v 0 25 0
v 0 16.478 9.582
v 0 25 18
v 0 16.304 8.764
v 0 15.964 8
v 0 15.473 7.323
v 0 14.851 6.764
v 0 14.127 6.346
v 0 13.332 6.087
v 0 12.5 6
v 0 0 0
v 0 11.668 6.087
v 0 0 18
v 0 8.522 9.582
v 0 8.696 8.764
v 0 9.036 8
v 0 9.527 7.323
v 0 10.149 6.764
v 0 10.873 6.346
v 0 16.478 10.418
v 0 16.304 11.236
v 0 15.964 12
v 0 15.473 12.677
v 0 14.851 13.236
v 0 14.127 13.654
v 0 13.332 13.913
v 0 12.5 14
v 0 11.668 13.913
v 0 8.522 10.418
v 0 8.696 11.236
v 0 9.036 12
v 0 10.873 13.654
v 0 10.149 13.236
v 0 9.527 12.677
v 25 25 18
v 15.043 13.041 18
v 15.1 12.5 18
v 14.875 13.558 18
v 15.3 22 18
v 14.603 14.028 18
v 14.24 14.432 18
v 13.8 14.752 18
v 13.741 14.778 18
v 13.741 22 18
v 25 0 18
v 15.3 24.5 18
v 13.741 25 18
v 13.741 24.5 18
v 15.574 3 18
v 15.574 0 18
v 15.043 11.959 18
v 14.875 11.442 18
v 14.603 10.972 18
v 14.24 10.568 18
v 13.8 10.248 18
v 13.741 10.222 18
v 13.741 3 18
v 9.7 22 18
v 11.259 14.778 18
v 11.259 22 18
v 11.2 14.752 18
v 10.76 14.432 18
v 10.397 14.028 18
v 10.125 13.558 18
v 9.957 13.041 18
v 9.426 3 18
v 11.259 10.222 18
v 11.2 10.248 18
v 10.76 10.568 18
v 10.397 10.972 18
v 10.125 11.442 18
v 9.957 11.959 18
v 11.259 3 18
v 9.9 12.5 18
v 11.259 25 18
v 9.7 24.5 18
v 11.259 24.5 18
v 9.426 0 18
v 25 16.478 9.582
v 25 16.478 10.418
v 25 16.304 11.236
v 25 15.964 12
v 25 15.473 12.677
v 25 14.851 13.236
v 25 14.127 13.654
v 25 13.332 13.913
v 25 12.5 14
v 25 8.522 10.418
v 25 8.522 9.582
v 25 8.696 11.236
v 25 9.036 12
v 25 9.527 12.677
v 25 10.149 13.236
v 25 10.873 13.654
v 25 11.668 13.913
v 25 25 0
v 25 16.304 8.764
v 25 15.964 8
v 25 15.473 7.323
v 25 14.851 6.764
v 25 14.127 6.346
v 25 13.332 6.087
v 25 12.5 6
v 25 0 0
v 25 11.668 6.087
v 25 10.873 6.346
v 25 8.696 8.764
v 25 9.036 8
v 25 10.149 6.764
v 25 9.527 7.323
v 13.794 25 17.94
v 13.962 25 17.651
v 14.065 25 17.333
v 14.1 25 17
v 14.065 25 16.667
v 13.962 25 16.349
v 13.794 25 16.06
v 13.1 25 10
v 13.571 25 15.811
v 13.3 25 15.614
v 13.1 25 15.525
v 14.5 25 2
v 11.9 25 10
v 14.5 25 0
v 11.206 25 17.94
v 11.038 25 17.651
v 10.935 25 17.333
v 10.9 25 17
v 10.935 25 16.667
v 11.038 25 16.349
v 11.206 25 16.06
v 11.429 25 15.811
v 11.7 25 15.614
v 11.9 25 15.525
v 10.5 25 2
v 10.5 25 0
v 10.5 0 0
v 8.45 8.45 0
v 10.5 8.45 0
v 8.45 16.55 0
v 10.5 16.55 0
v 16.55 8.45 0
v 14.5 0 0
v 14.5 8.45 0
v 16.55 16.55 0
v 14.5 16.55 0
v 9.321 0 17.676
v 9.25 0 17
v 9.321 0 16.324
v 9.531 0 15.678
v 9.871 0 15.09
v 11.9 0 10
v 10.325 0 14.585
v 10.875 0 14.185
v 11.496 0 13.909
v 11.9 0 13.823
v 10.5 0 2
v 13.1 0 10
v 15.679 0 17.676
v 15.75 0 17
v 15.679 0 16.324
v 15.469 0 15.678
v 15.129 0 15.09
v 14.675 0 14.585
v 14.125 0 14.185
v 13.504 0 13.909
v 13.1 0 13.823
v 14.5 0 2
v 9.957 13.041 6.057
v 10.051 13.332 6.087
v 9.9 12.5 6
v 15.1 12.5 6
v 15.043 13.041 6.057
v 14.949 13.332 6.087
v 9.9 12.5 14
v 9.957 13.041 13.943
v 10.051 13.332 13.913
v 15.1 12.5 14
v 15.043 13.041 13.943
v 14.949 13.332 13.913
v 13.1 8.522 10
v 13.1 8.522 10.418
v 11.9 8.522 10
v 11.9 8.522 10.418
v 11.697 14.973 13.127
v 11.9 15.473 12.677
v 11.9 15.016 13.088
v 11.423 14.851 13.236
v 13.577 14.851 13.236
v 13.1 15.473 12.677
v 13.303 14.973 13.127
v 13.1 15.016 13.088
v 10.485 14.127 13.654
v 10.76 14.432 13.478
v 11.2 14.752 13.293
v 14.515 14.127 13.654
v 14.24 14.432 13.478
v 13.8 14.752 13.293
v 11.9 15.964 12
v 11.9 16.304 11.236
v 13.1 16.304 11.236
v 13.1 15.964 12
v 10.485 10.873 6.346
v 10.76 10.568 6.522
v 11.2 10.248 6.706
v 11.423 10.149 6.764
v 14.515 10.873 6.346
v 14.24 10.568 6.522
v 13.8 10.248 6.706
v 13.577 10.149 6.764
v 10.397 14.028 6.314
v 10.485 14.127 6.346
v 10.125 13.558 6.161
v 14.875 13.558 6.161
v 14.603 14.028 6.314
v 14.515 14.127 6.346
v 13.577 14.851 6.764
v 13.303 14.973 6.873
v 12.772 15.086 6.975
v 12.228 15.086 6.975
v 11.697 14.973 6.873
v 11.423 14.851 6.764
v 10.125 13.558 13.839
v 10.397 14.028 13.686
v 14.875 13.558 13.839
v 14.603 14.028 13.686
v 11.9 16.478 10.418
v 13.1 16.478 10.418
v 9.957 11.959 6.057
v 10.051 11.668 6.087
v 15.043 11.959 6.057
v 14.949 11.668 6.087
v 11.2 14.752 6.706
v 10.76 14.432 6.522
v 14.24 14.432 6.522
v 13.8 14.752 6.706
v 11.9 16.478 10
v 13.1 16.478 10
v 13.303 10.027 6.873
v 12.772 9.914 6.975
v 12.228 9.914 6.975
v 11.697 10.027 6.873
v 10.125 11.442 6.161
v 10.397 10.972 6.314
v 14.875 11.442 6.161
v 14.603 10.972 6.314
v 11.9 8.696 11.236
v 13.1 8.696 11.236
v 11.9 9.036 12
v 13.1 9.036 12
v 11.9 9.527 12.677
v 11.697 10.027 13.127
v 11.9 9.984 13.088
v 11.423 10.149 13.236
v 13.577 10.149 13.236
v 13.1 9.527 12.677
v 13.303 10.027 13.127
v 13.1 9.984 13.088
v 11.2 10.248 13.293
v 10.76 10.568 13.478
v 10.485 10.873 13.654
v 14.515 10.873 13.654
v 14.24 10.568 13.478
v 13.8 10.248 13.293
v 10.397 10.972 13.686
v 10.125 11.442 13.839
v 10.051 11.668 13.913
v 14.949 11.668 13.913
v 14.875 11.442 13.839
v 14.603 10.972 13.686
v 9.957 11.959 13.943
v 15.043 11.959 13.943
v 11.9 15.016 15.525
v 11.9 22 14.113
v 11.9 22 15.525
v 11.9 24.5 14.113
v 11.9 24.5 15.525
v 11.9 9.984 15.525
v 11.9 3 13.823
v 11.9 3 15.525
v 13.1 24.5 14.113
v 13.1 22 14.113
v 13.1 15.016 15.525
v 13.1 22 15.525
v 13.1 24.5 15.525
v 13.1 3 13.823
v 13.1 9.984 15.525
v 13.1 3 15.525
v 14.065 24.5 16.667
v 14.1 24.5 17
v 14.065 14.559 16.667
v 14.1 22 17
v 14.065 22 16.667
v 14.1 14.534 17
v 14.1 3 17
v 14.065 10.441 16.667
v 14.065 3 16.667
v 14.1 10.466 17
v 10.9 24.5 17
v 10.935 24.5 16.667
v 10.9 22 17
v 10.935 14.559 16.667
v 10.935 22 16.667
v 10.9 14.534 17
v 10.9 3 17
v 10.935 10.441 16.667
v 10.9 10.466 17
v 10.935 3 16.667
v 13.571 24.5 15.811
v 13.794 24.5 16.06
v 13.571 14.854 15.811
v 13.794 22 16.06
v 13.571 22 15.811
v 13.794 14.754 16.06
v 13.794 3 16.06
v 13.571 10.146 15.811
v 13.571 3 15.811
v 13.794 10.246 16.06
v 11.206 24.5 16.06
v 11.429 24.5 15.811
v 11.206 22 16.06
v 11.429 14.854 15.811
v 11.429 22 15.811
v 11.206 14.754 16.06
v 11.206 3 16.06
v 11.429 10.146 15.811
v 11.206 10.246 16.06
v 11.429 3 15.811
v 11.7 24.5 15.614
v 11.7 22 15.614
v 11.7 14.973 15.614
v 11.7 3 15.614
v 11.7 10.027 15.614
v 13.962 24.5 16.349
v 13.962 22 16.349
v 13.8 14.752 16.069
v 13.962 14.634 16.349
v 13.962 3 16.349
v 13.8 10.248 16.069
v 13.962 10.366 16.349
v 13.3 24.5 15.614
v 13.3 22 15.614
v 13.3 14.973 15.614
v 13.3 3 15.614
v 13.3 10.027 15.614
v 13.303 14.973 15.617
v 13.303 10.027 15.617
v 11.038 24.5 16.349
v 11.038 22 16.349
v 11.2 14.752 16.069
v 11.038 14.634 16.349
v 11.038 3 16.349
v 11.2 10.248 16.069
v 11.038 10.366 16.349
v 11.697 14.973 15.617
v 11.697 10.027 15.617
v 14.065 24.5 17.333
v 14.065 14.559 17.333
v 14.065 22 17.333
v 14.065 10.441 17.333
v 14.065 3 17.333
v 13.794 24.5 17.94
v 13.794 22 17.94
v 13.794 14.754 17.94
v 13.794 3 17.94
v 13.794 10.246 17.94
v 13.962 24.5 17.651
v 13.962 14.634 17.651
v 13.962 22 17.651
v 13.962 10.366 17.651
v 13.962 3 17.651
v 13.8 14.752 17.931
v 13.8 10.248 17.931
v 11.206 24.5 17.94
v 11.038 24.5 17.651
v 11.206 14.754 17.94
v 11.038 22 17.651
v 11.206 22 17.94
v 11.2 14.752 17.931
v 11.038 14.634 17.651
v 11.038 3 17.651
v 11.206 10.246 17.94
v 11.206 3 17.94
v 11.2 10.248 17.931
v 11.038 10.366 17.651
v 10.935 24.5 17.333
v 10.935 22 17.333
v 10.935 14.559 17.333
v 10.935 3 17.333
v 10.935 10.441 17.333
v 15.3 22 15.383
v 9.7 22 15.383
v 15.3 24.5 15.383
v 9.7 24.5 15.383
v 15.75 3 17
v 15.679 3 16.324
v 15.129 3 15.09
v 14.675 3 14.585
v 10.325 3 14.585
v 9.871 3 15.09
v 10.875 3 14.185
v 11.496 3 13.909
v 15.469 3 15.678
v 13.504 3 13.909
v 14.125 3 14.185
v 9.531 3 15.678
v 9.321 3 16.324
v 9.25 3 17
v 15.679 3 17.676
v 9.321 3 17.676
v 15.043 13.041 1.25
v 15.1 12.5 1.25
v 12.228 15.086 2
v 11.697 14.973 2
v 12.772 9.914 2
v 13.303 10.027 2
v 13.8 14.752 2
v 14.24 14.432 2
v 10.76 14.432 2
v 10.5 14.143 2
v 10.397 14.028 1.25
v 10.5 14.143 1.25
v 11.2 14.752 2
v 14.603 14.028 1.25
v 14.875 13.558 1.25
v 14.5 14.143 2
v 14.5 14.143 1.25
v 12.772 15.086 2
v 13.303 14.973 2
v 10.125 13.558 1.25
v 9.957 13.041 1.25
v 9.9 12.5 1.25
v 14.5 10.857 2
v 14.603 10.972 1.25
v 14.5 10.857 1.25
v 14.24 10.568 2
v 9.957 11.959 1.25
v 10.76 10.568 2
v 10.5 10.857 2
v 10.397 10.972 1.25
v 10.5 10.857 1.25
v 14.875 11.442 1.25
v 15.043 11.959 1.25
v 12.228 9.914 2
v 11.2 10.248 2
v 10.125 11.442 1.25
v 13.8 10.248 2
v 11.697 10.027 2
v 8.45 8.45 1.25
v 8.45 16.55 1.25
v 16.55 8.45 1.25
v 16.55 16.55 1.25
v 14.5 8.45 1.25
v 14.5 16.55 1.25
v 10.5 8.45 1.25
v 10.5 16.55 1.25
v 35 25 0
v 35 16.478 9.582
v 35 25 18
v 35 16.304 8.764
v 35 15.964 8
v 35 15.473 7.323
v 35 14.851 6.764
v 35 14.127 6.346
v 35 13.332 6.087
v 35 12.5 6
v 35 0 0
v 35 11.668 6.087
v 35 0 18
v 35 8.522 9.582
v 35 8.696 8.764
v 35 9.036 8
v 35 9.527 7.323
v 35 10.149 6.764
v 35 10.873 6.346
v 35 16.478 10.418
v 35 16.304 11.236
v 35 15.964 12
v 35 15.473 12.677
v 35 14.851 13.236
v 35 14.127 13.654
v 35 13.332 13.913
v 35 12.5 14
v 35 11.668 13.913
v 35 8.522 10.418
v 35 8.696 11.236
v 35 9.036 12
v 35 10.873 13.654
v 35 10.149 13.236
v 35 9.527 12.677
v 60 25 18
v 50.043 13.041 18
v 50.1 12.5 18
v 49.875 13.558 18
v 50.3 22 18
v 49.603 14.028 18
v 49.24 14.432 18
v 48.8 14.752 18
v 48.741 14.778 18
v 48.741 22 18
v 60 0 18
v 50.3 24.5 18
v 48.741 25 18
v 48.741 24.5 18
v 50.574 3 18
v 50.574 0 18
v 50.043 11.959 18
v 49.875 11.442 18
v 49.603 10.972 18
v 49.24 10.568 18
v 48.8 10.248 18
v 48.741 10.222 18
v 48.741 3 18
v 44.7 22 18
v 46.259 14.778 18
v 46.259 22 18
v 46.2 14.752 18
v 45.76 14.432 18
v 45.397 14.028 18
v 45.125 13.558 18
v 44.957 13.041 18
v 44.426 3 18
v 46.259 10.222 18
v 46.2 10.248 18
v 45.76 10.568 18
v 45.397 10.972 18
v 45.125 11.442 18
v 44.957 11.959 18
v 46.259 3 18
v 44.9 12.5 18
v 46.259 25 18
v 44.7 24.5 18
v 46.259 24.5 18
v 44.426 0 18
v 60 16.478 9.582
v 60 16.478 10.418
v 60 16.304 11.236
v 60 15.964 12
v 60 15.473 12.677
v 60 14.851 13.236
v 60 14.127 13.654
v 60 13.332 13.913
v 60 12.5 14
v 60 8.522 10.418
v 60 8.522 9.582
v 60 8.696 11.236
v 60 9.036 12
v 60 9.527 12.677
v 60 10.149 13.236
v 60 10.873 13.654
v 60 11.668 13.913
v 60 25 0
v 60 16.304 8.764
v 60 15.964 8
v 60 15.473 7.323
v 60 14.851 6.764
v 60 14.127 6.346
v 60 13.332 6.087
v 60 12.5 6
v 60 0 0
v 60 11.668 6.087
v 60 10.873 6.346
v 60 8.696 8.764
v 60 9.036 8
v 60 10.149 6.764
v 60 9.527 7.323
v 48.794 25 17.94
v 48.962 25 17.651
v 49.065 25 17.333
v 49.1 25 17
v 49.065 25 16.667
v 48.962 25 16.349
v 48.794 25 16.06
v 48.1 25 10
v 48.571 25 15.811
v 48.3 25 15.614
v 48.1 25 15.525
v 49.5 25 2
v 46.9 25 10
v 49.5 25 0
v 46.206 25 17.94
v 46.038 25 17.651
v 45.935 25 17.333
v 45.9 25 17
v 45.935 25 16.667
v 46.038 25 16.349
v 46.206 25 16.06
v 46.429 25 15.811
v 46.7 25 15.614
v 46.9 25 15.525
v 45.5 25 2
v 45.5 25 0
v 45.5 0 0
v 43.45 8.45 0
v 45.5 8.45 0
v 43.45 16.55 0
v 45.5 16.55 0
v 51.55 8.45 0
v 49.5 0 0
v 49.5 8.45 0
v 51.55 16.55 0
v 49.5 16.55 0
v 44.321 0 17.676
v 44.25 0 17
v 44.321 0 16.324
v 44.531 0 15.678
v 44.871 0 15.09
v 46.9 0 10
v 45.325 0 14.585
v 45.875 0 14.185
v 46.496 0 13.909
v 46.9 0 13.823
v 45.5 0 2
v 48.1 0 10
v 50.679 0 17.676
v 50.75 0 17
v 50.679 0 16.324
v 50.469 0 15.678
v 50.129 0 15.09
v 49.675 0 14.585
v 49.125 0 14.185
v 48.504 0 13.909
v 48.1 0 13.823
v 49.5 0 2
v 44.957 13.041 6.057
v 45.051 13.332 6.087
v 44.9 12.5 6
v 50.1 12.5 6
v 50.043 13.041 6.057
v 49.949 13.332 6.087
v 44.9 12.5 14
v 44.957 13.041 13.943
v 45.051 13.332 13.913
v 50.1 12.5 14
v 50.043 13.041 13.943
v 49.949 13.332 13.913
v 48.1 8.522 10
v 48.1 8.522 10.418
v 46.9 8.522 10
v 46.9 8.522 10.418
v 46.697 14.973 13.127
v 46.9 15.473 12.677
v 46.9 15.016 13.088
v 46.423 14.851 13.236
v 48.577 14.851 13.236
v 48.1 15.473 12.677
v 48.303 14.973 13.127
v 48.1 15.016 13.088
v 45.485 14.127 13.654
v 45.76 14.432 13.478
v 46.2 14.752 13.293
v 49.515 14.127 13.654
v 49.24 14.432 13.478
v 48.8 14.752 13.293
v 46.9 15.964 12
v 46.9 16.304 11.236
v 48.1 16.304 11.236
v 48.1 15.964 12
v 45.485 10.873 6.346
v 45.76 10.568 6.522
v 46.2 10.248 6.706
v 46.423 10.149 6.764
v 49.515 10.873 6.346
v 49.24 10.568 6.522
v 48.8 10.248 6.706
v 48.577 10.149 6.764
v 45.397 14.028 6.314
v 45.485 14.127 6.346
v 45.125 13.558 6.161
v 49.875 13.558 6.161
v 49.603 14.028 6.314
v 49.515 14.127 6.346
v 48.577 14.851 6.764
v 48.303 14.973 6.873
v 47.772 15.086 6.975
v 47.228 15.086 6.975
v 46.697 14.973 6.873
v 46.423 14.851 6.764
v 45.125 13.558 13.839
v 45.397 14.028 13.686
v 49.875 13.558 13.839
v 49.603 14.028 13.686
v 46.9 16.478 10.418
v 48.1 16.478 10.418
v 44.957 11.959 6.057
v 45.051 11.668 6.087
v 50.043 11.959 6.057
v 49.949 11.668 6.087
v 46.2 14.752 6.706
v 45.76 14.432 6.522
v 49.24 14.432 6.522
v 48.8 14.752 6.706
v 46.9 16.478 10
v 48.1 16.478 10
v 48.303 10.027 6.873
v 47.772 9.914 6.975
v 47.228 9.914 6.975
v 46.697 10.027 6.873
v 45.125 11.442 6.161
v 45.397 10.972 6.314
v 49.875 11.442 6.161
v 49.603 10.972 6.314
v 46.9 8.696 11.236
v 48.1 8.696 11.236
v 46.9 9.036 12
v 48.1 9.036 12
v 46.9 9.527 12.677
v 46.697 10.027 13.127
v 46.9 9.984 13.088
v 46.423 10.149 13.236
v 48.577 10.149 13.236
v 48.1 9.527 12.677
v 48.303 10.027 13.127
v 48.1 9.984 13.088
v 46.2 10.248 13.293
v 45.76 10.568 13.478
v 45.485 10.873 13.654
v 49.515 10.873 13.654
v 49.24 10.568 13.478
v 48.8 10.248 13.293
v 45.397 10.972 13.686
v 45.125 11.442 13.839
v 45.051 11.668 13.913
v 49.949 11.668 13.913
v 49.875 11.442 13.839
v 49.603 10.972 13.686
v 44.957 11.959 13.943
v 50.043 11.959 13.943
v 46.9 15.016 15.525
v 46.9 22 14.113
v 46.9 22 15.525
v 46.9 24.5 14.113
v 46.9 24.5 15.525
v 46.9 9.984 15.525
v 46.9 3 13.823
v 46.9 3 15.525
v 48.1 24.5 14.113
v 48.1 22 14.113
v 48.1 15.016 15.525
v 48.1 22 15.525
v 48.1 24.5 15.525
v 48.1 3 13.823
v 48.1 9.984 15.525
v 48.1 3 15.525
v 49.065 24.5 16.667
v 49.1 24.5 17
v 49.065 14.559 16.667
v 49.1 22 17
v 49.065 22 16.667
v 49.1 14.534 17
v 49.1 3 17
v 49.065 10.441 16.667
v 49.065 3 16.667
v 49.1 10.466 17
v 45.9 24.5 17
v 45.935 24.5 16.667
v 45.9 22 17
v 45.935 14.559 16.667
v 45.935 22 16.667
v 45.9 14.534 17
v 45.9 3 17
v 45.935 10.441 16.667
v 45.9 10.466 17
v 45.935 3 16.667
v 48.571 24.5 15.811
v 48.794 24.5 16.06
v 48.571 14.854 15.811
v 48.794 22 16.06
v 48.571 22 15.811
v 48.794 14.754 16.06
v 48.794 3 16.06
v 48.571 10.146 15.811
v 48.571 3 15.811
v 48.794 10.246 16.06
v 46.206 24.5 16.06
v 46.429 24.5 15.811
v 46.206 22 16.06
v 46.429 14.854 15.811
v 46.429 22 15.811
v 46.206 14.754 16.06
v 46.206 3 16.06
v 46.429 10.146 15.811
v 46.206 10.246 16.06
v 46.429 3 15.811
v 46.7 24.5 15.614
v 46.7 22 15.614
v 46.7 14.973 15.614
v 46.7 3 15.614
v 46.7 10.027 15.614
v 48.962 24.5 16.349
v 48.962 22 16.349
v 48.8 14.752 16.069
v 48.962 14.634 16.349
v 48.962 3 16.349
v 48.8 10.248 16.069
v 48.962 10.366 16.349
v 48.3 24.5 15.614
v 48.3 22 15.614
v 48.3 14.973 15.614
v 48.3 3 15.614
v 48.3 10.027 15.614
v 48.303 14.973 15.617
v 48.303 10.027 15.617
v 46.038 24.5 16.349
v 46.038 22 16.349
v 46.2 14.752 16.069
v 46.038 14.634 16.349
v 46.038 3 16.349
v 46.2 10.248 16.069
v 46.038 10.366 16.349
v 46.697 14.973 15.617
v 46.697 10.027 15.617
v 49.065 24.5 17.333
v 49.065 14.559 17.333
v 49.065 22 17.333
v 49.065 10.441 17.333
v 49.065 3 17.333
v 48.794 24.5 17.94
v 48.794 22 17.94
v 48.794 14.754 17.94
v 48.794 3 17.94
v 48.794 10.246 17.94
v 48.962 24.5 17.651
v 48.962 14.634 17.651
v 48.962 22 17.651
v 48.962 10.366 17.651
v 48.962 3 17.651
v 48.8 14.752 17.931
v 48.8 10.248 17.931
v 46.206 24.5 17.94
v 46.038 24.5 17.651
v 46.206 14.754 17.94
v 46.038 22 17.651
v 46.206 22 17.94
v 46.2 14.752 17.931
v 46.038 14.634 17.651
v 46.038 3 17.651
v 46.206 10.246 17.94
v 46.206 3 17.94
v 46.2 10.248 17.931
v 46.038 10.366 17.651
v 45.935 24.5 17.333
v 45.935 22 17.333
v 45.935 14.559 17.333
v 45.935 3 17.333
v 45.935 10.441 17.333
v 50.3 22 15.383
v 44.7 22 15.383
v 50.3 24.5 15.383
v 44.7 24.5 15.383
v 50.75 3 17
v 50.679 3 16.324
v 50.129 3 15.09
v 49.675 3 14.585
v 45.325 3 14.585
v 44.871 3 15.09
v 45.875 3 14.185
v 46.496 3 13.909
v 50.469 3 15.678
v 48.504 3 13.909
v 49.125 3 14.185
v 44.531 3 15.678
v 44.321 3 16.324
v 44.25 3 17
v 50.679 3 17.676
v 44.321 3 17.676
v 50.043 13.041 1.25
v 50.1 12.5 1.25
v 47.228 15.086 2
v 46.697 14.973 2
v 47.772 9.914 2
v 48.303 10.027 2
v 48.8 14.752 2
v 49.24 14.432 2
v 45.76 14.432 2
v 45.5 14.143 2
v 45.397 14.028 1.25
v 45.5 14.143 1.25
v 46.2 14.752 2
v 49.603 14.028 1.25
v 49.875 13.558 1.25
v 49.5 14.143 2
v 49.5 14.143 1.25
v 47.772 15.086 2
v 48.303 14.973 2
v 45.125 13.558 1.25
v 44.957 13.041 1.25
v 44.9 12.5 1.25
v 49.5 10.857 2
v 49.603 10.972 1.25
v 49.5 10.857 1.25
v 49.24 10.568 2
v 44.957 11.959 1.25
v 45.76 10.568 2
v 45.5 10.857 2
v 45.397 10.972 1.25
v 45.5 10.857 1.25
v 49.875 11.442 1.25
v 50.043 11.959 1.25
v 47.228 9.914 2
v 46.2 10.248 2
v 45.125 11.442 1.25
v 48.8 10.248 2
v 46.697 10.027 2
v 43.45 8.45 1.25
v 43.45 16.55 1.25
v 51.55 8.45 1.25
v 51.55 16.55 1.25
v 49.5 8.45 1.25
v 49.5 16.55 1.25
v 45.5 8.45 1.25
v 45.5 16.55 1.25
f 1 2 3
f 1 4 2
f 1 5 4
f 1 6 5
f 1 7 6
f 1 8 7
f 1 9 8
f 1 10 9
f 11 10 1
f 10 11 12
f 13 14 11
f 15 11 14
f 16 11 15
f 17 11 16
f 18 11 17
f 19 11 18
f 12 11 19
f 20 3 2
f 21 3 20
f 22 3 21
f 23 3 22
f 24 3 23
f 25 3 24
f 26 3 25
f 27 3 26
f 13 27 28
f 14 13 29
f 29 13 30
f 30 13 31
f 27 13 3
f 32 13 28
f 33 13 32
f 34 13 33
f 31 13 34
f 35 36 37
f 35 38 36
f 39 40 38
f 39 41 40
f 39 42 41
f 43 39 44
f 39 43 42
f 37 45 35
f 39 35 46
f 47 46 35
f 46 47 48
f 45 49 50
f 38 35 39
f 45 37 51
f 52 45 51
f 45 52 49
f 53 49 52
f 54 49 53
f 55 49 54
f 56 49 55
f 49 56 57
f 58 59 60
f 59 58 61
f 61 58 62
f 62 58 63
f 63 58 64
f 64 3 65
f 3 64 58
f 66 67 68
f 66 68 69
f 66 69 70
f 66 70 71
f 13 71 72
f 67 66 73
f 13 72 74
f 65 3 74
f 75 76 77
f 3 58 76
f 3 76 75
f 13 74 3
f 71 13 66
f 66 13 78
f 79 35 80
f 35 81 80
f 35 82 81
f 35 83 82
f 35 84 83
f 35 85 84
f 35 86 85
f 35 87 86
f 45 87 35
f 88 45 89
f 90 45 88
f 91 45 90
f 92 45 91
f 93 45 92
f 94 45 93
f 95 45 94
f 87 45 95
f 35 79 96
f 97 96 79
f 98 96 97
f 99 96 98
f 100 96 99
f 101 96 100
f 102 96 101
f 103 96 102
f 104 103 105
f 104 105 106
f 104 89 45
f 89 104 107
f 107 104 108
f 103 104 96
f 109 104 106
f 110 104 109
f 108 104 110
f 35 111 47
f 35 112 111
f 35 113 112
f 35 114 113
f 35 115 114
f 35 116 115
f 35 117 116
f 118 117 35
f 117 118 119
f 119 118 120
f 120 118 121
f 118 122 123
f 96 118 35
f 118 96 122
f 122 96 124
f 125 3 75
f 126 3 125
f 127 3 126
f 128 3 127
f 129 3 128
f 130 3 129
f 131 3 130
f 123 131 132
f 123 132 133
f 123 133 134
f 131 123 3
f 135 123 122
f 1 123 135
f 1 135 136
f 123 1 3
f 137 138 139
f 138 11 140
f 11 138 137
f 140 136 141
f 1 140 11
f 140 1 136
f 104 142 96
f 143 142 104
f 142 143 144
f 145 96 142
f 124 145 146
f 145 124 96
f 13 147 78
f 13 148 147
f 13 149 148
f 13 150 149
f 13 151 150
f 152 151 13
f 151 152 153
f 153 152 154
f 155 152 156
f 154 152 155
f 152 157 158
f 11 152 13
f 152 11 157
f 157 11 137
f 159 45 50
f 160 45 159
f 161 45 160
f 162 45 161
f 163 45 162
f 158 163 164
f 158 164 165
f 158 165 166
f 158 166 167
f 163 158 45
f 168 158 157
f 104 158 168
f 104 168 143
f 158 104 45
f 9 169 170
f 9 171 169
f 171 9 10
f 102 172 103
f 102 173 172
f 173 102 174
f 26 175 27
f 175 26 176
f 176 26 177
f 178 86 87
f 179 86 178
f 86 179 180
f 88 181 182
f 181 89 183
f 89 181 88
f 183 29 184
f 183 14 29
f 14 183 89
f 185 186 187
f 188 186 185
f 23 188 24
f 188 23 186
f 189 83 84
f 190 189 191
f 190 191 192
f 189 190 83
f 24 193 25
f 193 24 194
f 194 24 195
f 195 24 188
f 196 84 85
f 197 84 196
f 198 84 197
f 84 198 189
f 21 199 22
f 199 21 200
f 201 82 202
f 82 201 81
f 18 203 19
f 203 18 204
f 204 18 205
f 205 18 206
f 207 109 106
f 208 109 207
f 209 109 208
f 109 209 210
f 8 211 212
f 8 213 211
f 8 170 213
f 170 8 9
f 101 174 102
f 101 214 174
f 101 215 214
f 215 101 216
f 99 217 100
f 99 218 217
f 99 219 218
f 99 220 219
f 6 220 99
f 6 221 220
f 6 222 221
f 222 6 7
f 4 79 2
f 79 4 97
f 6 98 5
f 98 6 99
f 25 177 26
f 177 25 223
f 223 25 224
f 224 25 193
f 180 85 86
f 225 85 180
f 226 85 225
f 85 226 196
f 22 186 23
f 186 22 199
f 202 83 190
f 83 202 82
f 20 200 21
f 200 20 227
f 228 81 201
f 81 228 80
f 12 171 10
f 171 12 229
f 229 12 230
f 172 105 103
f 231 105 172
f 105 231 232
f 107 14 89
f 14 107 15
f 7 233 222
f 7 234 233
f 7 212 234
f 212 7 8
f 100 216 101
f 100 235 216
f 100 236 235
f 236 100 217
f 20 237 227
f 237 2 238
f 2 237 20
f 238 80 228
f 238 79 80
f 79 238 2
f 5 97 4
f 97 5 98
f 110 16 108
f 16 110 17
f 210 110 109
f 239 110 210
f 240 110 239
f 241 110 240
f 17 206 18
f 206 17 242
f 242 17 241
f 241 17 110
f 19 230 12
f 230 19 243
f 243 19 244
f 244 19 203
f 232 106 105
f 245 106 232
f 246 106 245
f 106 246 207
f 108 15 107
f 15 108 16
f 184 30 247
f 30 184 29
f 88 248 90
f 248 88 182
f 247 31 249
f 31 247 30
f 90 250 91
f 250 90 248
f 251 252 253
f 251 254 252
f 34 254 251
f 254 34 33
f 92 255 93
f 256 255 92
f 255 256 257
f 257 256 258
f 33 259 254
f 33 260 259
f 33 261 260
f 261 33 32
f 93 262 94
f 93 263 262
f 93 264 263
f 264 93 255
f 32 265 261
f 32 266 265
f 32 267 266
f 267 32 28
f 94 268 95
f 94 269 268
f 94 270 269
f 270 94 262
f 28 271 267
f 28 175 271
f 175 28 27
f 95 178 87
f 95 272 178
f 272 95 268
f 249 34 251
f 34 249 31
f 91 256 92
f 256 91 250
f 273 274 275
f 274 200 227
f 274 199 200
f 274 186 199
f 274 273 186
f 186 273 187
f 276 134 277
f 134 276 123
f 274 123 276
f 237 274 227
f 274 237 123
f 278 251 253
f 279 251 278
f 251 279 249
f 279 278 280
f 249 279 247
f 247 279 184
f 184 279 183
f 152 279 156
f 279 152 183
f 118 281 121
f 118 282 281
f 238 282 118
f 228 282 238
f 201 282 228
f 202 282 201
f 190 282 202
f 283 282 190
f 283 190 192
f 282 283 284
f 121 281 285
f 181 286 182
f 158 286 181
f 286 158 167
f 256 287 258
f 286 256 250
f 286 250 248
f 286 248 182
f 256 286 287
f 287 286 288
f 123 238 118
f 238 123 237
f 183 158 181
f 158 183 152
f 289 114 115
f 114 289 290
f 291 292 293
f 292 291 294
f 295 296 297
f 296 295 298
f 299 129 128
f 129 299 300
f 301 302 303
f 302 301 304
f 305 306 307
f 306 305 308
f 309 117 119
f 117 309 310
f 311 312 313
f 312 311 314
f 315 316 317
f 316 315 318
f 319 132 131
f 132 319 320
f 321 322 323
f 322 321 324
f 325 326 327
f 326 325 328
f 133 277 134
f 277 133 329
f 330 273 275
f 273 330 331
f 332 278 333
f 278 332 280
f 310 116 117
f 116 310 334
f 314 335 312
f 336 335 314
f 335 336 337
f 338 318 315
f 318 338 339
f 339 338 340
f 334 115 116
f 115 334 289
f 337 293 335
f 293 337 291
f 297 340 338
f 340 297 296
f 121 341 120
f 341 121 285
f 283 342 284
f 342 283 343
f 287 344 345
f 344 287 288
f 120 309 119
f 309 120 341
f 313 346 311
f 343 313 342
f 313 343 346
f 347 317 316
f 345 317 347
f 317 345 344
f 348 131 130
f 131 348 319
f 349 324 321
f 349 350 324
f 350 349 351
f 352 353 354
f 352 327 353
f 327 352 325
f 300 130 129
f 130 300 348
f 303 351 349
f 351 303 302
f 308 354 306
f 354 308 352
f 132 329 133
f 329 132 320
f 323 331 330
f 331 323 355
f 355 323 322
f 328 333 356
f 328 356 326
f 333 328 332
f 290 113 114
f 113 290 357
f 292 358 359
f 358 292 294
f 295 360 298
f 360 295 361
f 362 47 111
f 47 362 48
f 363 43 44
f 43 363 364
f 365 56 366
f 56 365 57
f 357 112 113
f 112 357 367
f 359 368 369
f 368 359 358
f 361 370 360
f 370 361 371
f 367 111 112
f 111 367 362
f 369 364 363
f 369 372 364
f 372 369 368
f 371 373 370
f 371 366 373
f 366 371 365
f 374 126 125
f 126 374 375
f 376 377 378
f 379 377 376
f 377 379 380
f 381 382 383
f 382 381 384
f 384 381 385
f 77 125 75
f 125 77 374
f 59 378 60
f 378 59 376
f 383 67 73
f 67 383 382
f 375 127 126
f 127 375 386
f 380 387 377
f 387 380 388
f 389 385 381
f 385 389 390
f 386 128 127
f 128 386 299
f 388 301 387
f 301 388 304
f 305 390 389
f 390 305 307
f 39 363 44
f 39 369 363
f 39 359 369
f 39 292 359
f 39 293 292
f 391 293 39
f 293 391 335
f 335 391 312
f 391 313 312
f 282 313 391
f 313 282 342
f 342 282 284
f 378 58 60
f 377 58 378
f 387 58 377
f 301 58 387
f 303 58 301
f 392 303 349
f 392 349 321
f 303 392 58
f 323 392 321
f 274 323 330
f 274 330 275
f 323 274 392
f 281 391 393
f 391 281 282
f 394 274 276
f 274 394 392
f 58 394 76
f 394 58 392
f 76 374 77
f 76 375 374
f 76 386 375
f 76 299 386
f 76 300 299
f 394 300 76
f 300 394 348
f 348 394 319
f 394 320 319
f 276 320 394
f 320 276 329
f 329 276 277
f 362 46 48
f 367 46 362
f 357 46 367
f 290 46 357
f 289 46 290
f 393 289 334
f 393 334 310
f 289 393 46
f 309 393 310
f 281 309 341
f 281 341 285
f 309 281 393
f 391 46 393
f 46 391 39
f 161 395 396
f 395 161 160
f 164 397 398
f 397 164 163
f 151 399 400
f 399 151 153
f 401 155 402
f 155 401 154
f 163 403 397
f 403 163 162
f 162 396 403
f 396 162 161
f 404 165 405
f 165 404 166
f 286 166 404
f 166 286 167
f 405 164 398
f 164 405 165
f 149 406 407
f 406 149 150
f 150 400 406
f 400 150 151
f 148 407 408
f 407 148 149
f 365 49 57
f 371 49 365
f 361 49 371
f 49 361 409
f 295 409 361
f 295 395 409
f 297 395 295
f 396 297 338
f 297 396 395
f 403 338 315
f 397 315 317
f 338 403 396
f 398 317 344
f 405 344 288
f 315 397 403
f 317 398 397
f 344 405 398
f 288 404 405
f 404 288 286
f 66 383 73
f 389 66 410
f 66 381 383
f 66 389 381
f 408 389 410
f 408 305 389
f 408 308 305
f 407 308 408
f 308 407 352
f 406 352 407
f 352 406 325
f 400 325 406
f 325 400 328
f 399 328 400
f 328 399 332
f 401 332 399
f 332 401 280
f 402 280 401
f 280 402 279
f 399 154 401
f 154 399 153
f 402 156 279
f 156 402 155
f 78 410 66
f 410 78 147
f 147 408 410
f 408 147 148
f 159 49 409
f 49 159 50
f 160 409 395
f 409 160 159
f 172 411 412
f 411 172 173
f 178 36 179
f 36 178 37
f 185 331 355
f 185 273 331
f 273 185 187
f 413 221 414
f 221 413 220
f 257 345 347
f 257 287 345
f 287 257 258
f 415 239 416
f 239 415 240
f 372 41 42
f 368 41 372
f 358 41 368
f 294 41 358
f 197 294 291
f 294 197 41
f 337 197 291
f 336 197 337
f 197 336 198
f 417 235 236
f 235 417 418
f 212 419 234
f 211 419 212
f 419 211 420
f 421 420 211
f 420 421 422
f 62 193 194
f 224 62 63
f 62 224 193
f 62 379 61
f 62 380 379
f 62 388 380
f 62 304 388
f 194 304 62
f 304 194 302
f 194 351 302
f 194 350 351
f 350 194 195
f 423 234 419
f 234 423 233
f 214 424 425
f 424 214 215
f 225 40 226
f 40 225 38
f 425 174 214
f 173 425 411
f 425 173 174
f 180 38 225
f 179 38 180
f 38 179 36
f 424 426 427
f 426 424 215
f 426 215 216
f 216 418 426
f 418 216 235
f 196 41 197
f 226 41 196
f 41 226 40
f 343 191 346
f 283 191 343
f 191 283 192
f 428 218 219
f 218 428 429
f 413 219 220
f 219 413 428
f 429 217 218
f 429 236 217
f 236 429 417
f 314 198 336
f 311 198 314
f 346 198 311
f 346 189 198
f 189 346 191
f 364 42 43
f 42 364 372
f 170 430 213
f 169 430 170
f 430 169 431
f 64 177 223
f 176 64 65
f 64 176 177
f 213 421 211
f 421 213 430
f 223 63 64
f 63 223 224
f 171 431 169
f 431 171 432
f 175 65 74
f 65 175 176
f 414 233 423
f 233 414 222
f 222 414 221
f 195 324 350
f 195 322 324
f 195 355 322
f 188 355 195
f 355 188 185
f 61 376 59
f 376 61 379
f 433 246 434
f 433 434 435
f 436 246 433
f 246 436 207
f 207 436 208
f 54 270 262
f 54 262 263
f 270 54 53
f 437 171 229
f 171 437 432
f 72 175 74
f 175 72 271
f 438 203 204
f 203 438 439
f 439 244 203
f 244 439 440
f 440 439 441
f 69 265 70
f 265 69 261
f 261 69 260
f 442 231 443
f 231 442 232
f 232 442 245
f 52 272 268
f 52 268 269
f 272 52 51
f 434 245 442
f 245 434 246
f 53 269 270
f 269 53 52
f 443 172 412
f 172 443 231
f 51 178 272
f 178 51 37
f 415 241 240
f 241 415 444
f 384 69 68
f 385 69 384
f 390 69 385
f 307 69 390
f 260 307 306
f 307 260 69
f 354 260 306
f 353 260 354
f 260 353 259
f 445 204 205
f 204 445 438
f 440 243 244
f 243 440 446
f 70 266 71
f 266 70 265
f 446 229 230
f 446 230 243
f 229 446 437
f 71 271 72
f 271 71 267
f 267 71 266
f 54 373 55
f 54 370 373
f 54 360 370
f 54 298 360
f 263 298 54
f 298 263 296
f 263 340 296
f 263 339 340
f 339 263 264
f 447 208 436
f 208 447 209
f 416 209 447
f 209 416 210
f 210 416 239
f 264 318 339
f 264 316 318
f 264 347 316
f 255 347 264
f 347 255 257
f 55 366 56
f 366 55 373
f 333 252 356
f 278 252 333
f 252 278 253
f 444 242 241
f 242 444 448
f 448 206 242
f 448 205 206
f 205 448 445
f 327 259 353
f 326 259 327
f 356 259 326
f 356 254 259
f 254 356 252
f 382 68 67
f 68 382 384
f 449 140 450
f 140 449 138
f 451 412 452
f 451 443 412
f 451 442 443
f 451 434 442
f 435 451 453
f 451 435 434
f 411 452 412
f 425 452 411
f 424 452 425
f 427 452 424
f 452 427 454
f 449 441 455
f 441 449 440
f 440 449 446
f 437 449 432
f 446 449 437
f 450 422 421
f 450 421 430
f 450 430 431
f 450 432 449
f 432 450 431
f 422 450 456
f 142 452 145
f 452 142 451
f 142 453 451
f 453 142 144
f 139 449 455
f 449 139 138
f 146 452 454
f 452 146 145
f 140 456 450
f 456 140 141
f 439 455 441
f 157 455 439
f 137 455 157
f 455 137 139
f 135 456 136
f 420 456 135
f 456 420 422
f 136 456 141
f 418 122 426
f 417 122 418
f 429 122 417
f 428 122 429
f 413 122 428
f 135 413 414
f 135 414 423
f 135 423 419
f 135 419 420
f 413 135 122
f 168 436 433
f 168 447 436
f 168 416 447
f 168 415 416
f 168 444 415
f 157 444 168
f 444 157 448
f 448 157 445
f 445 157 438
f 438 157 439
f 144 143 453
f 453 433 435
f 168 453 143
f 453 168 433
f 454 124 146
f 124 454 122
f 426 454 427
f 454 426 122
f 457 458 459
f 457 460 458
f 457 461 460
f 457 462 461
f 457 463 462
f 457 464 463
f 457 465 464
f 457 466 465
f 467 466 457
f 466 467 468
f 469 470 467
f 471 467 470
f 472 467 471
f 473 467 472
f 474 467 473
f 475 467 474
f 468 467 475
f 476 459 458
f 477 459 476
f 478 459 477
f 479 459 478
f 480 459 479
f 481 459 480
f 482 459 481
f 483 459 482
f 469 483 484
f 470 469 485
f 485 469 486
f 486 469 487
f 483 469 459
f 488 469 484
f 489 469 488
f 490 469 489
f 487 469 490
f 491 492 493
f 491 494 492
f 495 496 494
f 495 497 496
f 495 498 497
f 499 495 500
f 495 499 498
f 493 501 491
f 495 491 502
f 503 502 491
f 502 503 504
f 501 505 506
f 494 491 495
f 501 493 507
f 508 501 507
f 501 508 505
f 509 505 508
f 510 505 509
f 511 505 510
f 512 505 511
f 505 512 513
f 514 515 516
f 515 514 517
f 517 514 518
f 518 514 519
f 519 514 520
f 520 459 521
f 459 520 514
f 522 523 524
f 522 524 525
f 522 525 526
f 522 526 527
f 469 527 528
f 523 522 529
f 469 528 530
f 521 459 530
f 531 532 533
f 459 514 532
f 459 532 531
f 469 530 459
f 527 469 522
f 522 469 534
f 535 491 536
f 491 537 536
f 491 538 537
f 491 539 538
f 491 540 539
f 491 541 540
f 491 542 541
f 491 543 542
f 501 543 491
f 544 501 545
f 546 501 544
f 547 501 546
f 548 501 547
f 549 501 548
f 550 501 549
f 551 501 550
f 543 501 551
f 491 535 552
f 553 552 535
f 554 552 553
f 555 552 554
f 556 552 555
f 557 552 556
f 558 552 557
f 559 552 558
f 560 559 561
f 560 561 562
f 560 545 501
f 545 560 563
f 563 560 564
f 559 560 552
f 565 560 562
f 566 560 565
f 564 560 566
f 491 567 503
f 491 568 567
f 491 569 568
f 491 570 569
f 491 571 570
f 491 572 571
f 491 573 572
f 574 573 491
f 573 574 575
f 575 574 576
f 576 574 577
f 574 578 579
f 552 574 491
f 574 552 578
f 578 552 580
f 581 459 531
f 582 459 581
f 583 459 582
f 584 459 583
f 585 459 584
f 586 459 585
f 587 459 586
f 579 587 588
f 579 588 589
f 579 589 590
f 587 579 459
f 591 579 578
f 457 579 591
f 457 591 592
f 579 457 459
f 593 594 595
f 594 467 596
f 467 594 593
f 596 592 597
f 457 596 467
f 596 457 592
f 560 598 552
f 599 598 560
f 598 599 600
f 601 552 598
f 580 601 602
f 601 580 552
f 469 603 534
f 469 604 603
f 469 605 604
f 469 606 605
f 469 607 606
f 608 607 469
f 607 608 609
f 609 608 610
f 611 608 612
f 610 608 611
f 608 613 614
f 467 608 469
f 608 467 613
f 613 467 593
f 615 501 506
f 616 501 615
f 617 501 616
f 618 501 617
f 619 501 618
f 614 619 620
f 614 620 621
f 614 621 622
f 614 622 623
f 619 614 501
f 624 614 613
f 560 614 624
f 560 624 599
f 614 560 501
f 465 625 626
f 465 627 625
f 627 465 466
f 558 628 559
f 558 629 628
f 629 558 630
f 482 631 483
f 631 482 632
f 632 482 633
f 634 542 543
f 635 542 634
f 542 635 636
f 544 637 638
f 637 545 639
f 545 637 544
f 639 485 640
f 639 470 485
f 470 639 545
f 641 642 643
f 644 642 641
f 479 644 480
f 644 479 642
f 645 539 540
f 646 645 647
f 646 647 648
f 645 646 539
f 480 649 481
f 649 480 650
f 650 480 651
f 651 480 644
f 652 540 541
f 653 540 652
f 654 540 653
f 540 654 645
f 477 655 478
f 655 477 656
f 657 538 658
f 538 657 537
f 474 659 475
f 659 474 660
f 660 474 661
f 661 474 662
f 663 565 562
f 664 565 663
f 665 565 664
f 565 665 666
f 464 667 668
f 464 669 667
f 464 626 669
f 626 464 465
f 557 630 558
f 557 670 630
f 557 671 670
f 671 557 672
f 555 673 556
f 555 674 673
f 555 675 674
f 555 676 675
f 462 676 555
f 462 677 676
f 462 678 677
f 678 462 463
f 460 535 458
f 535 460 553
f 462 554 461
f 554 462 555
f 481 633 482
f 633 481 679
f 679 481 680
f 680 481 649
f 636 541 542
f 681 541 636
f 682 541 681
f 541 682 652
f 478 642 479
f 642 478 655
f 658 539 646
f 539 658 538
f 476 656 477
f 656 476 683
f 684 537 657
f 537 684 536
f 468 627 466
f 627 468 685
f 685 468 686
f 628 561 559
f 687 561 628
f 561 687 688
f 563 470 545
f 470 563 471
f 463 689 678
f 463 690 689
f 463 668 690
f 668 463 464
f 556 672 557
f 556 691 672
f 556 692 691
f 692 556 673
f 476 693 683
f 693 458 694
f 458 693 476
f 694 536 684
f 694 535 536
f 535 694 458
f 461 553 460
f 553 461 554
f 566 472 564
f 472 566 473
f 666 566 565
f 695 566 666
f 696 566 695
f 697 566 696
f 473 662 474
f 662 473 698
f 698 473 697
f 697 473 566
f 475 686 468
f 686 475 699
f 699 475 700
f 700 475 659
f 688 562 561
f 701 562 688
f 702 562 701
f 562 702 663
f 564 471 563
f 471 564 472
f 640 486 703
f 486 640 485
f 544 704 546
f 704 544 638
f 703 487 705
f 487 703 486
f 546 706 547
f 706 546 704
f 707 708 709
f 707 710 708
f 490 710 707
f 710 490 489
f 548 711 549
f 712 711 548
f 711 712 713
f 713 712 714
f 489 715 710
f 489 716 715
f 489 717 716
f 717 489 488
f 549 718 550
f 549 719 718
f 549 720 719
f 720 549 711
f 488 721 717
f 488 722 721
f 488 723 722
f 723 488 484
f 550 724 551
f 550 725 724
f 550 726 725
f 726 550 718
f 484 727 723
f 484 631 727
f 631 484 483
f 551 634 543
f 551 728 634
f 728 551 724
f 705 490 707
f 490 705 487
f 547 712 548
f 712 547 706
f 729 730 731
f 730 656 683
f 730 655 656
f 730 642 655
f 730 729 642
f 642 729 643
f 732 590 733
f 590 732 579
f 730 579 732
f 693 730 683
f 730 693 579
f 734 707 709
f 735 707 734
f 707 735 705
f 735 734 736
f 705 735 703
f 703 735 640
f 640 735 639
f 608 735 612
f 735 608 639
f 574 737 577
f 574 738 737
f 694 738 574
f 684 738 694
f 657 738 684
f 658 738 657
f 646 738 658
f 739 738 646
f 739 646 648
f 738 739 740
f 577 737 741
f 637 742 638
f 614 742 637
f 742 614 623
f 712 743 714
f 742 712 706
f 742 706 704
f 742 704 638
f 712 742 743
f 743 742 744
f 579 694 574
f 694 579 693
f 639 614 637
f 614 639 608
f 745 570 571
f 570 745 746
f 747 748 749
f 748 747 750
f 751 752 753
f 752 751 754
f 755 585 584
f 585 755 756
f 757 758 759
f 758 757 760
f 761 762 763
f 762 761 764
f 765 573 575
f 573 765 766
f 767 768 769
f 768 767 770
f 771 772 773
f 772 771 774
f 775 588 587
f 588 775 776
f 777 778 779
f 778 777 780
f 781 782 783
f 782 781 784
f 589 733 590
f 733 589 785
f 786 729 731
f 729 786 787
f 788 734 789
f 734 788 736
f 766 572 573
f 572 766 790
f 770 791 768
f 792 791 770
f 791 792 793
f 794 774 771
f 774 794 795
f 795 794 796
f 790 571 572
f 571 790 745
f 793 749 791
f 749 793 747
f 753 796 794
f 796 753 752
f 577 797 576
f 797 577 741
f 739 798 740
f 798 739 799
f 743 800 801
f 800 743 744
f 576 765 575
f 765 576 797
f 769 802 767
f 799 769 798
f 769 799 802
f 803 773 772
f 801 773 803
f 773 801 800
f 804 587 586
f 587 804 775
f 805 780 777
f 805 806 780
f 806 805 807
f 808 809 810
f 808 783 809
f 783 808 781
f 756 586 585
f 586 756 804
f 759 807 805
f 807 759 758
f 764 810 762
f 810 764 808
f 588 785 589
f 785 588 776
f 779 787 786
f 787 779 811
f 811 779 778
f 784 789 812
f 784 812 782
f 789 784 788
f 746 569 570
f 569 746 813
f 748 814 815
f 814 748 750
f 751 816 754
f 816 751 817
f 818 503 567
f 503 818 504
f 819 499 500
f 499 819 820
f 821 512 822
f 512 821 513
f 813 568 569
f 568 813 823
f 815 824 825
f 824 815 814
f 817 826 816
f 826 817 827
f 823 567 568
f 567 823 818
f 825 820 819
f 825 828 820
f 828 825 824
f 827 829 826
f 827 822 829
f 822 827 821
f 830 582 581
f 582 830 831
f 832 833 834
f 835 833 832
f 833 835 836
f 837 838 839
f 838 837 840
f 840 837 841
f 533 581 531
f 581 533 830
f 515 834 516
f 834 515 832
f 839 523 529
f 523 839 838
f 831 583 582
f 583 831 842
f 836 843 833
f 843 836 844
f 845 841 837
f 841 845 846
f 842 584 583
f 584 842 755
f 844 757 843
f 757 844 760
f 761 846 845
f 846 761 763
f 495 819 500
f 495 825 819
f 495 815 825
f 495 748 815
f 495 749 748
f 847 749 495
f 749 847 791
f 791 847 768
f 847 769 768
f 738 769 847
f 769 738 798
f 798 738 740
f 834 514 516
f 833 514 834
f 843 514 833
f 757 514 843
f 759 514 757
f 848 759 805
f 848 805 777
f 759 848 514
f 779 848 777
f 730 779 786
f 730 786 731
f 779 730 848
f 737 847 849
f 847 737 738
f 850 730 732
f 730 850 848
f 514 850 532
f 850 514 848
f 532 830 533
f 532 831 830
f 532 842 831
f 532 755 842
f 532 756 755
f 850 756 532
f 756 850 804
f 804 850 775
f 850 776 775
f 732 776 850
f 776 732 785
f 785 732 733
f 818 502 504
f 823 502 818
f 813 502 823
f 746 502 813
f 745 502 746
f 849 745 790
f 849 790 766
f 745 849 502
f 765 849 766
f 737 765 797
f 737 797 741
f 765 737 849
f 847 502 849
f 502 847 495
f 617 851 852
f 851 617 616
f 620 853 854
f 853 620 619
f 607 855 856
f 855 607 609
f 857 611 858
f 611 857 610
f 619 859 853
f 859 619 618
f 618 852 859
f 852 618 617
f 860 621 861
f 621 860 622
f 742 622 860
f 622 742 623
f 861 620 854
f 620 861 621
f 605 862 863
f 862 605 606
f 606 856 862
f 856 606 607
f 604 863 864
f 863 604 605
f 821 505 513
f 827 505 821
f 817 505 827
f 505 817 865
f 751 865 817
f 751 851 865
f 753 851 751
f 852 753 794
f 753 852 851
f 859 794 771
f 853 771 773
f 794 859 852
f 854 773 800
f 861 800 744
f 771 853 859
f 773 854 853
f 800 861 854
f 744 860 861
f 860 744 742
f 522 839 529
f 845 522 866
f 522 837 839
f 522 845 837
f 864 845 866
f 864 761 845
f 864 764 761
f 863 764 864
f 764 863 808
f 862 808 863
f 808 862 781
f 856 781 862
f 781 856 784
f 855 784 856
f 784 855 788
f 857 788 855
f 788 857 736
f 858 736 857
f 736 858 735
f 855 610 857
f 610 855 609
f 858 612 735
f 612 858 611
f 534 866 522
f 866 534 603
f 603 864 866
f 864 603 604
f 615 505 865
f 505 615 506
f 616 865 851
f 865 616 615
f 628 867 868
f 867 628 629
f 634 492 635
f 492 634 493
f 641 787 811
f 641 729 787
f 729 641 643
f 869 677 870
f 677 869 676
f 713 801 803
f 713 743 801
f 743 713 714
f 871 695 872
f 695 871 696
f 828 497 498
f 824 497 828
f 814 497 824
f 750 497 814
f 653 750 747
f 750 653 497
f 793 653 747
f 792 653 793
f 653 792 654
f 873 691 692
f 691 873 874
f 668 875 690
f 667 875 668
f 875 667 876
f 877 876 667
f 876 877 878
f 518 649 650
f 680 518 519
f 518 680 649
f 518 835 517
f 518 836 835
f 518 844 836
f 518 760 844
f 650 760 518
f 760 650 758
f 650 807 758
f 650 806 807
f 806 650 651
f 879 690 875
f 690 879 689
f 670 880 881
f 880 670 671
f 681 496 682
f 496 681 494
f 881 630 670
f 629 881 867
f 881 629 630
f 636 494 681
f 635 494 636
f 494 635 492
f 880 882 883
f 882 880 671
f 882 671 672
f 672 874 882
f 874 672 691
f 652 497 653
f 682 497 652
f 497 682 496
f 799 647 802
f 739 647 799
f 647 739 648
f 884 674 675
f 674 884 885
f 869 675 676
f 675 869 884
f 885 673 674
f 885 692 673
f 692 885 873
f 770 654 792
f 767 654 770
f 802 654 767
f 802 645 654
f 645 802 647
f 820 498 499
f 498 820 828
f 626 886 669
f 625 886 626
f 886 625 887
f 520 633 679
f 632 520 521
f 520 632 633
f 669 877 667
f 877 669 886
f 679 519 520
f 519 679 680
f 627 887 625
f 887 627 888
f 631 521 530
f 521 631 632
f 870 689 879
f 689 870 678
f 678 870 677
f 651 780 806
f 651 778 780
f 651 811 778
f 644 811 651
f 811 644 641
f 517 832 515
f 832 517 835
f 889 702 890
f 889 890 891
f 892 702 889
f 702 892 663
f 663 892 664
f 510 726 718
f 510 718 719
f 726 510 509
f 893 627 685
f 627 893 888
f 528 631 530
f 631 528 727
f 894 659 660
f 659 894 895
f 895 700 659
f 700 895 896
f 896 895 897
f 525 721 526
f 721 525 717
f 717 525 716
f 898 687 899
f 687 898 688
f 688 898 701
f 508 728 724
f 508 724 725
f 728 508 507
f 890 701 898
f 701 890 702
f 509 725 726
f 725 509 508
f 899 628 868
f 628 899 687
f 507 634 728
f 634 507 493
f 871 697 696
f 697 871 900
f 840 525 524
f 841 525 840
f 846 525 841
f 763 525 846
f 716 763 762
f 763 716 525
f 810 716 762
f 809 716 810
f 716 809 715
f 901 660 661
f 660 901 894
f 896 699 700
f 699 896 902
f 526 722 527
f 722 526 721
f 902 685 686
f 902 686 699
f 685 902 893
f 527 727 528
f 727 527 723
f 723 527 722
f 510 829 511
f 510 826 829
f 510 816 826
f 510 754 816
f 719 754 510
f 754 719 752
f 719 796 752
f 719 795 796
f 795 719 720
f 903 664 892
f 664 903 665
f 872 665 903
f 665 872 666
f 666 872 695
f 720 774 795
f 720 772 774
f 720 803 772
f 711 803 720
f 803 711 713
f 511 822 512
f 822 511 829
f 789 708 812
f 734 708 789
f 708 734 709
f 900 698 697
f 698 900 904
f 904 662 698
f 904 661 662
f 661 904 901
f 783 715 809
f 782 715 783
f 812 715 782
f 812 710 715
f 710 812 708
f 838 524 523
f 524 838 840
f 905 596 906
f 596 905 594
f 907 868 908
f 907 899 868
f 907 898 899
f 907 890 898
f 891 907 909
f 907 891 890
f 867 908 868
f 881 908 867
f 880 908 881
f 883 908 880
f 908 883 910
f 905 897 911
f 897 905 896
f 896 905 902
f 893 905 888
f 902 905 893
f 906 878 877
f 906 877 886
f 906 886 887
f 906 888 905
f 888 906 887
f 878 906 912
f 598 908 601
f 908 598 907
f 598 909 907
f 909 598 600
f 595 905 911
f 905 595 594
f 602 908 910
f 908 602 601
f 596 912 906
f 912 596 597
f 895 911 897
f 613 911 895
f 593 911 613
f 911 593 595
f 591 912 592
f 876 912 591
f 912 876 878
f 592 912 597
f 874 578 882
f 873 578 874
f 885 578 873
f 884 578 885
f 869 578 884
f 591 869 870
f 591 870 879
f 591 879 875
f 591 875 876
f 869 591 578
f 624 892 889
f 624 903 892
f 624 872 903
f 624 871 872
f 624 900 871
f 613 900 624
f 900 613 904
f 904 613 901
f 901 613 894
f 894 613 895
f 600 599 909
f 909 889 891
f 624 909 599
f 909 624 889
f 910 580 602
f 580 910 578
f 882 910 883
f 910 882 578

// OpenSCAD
// ============================================================
// PART 6 — Smooth Rod End Holders (print 2x)
// AI-Based Smart Precision Irrigation System (1-Axis)
// ============================================================
// Dimensions: 25 x 25 x 18 mm each
// Material: PLA+, 0.20mm layer, 60% infill, 3 perimeters
// Print time: ~40 min (both)
// Print orientation: Flat face (extrusion contact) DOWN
// ============================================================

/* [Holder Parameters] */
holder_w    = 25;     // X width
holder_d    = 25;     // Y depth
holder_h    = 18;     // Z height

/* [Rod Bore] */
rod_dia     = 8.0;    // Nominal rod diameter (no interference here — clamped)
rod_z       = 10;     // Rod center height from base
slit_width  = 1.2;    // Clamping slit (slightly wider than bracket for adjustment)

/* [Pinch Bolt] */
pinch_dia   = 3.2;    // M3 clearance
pinch_nut_w = 5.6;    // M3 nut trap width (across flats)
pinch_nut_h = 2.5;    // M3 nut trap depth

/* [Extrusion Mount] */
ext_bolt_dia = 5.2;   // M5 clearance
ext_nut_w    = 8.1;   // M5 T-nut width
ext_nut_h    = 3.5;   // T-nut recess depth

/* [V-Groove Registration] */
// V-groove on bottom face seats into 2020 V-slot for self-alignment
vgroove_depth = 2;
vgroove_angle = 90;    // V-slot angle

$fn = 30;

module rod_end_holder() {
    difference() {
        union() {
            // Main body
            cube([holder_w, holder_d, holder_h]);

            // Reinforcement ears around rod (higher clamping area)
            translate([holder_w/2, holder_d/2, 0])
            cylinder(d=rod_dia + 8, h=holder_h);
        }

        // Trim to rectangular envelope
        // Left
        translate([-20, -1, -1])
        cube([20, holder_d + 2, holder_h + 2]);
        // Right
        translate([holder_w, -1, -1])
        cube([20, holder_d + 2, holder_h + 2]);
        // Front
        translate([-1, -20, -1])
        cube([holder_w + 2, 20, holder_h + 2]);
        // Back
        translate([-1, holder_d, -1])
        cube([holder_w + 2, 20, holder_h + 2]);

        // === ROD BORE (through-hole) ===
        translate([-1, holder_d/2, rod_z])
        rotate([0, 90, 0])
        cylinder(d=rod_dia, h=holder_w + 2);

        // === CLAMPING SLIT (vertical, from rod to top) ===
        translate([(holder_w - slit_width)/2, -1, rod_z])
        cube([slit_width, holder_d + 2, holder_h - rod_z + 1]);

        // === PINCH BOLT (horizontal M3, perpendicular to slit) ===
        // Bolt passes through one ear, across slit, threads into other ear
        translate([holder_w/2, -1, rod_z + rod_dia/2 + 3])
        rotate([-90, 0, 0])
        cylinder(d=pinch_dia, h=holder_d + 2);

        // Nut trap on one side
        translate([holder_w/2, holder_d - 3, rod_z + rod_dia/2 + 3])
        rotate([-90, 30, 0])
        cylinder(d=pinch_nut_w / cos(30), h=pinch_nut_h, $fn=6);

        // Bolt head clearance on other side
        translate([holder_w/2, -1, rod_z + rod_dia/2 + 3])
        rotate([-90, 0, 0])
        cylinder(d=6.5, h=4);

        // === EXTRUSION MOUNT BOLT (M5, vertical) ===
        translate([holder_w/2, holder_d/2, -1])
        cylinder(d=ext_bolt_dia, h=holder_h + 2);

        // T-nut recess on bottom
        translate([holder_w/2, holder_d/2, -1])
        cube([ext_nut_w, ext_nut_w, ext_nut_h + 1], center=true);

        // === V-GROOVE (bottom face, for 2020 V-slot alignment) ===
        translate([holder_w/2, -1, 0])
        rotate([-90, 45, 0])
        cylinder(d=vgroove_depth * 2 * sqrt(2), h=holder_d + 2, $fn=4);
    }
}

// === PRINT LAYOUT: 2 holders side by side ===
rod_end_holder();
translate([holder_w + 10, 0, 0])
rod_end_holder();

// === PRINT NOTES ===
// Orientation: V-groove face (bottom/extrusion side) on bed
//   - Rod bore in XY plane for best circularity
//   - Clamping slit prints cleanly (vertical)
//   - Nut trap prints as overhang — use 0.16mm for bridge layer
//
// Post-processing:
//   - Clear the clamping slit with a razor blade
//   - Verify 8mm rod slides in with mild friction
//   - Tighten pinch bolt until rod is locked (don't over-torque)
//   - The V-groove should seat into the 2020 V-slot
//     preventing rotation — verify before bolting down
//
// Assembly order:
//   1. Slide rod through both holders
//   2. Seat V-groove into 2020 extrusion slot
//   3. Insert M5 bolt through holder into T-nut
//   4. Tighten M5, then tighten M3 pinch bolts
